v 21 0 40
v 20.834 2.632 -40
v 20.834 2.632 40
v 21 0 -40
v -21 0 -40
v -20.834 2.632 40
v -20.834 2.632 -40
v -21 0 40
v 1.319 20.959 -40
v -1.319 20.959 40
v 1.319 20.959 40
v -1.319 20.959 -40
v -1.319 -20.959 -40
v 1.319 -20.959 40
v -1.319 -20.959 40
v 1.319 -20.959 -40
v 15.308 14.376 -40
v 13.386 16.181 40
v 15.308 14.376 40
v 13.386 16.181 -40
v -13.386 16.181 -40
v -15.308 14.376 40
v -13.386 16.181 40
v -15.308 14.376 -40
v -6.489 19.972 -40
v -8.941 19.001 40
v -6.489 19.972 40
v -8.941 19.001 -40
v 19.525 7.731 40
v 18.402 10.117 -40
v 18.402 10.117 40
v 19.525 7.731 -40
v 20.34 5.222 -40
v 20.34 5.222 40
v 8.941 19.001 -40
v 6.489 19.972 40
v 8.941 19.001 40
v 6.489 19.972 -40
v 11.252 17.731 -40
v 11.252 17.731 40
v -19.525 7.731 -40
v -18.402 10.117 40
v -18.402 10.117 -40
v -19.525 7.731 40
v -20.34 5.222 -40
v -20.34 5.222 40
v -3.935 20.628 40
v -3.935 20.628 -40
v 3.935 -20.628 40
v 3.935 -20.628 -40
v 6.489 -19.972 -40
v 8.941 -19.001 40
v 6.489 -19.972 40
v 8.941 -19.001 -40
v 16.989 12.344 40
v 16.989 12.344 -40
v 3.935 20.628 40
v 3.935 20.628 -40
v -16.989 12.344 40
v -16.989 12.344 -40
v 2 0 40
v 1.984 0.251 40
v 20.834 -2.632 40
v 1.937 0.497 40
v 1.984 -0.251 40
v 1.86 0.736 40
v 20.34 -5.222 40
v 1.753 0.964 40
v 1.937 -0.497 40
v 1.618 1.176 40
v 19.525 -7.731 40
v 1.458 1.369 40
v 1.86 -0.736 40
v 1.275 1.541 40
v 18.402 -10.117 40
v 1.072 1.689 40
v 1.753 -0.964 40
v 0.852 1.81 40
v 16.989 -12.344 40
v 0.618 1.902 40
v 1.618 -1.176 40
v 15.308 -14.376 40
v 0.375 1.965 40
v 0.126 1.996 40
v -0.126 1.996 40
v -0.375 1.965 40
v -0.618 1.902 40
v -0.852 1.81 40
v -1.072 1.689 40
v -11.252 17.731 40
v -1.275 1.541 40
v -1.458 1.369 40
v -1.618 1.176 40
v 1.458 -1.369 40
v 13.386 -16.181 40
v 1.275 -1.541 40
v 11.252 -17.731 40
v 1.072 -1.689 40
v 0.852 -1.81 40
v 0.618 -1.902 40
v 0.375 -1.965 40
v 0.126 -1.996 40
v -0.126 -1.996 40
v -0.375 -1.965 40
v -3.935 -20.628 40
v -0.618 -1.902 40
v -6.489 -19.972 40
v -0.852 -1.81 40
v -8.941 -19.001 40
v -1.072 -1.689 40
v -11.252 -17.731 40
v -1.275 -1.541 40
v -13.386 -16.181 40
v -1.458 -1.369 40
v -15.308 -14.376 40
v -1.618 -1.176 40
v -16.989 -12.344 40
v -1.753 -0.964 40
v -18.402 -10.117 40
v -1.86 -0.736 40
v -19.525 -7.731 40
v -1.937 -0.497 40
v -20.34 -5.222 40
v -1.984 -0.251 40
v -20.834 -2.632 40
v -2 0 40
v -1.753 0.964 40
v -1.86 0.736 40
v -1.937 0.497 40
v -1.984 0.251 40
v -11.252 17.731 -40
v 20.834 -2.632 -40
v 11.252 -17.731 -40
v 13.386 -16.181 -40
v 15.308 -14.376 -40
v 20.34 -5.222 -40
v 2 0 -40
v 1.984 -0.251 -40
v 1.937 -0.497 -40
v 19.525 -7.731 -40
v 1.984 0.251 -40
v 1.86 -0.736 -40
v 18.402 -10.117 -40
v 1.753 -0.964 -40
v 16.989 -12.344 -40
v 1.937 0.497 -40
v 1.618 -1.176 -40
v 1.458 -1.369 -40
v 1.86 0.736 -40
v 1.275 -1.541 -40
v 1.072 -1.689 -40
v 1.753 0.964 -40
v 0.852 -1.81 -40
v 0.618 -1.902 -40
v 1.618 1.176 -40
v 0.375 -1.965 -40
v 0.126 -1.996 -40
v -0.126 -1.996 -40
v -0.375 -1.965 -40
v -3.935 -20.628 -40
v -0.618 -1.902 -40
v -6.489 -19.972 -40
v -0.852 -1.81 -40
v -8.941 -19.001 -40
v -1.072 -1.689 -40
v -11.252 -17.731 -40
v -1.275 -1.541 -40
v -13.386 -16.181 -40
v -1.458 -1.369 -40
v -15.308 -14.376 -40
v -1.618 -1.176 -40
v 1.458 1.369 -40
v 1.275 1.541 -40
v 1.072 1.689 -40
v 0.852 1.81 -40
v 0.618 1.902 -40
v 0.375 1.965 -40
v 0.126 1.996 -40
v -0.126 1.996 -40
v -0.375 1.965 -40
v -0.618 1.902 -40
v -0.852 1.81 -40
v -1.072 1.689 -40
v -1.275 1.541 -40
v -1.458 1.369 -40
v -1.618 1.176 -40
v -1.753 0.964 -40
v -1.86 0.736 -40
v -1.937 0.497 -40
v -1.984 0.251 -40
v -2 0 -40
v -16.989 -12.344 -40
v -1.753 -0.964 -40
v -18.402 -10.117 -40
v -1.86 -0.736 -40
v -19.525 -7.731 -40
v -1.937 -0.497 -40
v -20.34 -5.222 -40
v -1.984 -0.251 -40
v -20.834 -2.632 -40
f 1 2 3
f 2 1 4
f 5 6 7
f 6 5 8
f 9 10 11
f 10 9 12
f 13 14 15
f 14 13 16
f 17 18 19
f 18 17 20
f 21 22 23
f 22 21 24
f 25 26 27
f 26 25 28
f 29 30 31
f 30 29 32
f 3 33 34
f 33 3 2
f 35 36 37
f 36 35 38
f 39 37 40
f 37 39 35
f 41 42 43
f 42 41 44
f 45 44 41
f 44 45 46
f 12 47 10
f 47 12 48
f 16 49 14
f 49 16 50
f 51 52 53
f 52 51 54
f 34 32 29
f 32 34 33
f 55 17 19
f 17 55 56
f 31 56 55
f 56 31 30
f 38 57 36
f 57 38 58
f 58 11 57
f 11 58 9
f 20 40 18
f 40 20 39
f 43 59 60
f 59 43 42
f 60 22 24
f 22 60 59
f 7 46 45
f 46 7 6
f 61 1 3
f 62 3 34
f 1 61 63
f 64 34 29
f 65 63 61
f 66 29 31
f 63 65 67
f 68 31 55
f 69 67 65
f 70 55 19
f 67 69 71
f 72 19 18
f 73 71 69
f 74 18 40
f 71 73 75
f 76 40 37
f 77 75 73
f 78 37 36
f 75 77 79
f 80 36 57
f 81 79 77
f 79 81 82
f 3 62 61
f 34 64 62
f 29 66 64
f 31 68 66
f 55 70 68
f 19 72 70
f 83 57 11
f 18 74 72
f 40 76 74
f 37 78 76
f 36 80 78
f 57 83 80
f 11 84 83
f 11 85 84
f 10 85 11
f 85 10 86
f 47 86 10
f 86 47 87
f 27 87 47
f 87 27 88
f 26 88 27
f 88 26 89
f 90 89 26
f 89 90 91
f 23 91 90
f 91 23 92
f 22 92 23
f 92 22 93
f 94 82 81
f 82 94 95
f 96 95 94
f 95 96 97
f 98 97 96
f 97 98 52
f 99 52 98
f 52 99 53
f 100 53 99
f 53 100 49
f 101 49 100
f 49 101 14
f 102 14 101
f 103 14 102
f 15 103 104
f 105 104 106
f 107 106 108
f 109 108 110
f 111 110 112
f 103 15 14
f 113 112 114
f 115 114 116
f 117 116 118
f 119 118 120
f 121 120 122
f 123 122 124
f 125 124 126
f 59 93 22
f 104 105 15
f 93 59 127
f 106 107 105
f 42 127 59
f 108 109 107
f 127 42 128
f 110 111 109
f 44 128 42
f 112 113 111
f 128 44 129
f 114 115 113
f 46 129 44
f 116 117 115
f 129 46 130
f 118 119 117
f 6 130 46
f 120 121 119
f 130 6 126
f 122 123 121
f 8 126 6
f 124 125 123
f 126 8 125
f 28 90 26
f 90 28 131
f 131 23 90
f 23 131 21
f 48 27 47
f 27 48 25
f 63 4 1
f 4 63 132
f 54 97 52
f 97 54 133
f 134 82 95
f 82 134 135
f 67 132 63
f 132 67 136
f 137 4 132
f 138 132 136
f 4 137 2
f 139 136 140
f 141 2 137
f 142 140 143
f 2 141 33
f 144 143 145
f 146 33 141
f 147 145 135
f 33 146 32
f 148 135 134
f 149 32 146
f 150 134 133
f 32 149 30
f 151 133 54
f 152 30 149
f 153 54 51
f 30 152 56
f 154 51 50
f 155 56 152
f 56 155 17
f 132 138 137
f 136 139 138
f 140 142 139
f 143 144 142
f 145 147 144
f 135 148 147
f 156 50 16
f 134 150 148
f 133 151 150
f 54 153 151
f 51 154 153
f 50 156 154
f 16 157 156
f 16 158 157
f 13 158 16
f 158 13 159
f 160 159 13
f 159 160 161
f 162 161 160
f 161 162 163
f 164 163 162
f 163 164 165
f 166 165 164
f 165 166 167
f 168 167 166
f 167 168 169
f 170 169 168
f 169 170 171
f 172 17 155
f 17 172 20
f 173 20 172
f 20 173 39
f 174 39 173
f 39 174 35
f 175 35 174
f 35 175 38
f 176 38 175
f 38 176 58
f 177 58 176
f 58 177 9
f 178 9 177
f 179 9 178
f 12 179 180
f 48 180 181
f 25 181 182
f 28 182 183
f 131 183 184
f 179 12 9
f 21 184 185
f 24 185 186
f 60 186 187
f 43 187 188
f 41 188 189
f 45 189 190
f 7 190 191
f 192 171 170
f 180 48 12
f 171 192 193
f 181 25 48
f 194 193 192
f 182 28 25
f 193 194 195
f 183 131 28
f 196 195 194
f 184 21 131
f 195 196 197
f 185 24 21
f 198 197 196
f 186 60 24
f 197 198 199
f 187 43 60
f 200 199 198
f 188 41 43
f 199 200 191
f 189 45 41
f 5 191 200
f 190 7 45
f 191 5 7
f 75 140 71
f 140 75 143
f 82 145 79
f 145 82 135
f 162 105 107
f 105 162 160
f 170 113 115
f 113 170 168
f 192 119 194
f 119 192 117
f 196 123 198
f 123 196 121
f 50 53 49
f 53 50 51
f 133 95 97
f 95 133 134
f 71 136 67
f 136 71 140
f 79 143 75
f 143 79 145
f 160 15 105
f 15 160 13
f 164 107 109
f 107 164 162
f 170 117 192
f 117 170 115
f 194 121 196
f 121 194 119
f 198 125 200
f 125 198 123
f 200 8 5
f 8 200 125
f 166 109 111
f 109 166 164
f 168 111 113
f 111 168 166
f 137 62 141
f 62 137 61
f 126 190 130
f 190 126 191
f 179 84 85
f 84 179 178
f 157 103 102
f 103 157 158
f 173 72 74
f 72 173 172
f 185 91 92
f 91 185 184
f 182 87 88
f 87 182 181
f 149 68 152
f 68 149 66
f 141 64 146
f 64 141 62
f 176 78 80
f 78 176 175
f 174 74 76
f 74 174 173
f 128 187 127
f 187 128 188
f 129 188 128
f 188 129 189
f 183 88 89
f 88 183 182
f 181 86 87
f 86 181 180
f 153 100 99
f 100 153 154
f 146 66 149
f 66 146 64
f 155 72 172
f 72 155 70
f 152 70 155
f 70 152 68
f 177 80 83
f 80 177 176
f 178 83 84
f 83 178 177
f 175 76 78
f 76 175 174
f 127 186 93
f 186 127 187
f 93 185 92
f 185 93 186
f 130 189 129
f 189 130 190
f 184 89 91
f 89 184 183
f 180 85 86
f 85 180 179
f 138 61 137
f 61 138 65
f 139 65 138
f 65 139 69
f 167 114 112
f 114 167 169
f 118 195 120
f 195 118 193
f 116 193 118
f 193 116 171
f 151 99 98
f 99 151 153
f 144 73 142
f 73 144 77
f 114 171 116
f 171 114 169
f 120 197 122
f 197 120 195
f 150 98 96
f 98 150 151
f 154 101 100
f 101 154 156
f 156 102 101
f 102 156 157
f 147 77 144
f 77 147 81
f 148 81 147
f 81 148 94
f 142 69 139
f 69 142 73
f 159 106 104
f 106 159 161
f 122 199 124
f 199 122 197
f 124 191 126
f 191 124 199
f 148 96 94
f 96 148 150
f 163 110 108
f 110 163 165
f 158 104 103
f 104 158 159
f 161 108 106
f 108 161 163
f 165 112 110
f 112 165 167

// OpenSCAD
$fn = 50;


difference() {
	union() {
		translate(v = [0, 0, -40.0000000000]) {
			cylinder(h = 80, r = 21.0000000000);
		}
	}
	union() {
		translate(v = [0, 0, -100.0000000000]) {
			cylinder(h = 200, r = 2);
		}
	}
}
